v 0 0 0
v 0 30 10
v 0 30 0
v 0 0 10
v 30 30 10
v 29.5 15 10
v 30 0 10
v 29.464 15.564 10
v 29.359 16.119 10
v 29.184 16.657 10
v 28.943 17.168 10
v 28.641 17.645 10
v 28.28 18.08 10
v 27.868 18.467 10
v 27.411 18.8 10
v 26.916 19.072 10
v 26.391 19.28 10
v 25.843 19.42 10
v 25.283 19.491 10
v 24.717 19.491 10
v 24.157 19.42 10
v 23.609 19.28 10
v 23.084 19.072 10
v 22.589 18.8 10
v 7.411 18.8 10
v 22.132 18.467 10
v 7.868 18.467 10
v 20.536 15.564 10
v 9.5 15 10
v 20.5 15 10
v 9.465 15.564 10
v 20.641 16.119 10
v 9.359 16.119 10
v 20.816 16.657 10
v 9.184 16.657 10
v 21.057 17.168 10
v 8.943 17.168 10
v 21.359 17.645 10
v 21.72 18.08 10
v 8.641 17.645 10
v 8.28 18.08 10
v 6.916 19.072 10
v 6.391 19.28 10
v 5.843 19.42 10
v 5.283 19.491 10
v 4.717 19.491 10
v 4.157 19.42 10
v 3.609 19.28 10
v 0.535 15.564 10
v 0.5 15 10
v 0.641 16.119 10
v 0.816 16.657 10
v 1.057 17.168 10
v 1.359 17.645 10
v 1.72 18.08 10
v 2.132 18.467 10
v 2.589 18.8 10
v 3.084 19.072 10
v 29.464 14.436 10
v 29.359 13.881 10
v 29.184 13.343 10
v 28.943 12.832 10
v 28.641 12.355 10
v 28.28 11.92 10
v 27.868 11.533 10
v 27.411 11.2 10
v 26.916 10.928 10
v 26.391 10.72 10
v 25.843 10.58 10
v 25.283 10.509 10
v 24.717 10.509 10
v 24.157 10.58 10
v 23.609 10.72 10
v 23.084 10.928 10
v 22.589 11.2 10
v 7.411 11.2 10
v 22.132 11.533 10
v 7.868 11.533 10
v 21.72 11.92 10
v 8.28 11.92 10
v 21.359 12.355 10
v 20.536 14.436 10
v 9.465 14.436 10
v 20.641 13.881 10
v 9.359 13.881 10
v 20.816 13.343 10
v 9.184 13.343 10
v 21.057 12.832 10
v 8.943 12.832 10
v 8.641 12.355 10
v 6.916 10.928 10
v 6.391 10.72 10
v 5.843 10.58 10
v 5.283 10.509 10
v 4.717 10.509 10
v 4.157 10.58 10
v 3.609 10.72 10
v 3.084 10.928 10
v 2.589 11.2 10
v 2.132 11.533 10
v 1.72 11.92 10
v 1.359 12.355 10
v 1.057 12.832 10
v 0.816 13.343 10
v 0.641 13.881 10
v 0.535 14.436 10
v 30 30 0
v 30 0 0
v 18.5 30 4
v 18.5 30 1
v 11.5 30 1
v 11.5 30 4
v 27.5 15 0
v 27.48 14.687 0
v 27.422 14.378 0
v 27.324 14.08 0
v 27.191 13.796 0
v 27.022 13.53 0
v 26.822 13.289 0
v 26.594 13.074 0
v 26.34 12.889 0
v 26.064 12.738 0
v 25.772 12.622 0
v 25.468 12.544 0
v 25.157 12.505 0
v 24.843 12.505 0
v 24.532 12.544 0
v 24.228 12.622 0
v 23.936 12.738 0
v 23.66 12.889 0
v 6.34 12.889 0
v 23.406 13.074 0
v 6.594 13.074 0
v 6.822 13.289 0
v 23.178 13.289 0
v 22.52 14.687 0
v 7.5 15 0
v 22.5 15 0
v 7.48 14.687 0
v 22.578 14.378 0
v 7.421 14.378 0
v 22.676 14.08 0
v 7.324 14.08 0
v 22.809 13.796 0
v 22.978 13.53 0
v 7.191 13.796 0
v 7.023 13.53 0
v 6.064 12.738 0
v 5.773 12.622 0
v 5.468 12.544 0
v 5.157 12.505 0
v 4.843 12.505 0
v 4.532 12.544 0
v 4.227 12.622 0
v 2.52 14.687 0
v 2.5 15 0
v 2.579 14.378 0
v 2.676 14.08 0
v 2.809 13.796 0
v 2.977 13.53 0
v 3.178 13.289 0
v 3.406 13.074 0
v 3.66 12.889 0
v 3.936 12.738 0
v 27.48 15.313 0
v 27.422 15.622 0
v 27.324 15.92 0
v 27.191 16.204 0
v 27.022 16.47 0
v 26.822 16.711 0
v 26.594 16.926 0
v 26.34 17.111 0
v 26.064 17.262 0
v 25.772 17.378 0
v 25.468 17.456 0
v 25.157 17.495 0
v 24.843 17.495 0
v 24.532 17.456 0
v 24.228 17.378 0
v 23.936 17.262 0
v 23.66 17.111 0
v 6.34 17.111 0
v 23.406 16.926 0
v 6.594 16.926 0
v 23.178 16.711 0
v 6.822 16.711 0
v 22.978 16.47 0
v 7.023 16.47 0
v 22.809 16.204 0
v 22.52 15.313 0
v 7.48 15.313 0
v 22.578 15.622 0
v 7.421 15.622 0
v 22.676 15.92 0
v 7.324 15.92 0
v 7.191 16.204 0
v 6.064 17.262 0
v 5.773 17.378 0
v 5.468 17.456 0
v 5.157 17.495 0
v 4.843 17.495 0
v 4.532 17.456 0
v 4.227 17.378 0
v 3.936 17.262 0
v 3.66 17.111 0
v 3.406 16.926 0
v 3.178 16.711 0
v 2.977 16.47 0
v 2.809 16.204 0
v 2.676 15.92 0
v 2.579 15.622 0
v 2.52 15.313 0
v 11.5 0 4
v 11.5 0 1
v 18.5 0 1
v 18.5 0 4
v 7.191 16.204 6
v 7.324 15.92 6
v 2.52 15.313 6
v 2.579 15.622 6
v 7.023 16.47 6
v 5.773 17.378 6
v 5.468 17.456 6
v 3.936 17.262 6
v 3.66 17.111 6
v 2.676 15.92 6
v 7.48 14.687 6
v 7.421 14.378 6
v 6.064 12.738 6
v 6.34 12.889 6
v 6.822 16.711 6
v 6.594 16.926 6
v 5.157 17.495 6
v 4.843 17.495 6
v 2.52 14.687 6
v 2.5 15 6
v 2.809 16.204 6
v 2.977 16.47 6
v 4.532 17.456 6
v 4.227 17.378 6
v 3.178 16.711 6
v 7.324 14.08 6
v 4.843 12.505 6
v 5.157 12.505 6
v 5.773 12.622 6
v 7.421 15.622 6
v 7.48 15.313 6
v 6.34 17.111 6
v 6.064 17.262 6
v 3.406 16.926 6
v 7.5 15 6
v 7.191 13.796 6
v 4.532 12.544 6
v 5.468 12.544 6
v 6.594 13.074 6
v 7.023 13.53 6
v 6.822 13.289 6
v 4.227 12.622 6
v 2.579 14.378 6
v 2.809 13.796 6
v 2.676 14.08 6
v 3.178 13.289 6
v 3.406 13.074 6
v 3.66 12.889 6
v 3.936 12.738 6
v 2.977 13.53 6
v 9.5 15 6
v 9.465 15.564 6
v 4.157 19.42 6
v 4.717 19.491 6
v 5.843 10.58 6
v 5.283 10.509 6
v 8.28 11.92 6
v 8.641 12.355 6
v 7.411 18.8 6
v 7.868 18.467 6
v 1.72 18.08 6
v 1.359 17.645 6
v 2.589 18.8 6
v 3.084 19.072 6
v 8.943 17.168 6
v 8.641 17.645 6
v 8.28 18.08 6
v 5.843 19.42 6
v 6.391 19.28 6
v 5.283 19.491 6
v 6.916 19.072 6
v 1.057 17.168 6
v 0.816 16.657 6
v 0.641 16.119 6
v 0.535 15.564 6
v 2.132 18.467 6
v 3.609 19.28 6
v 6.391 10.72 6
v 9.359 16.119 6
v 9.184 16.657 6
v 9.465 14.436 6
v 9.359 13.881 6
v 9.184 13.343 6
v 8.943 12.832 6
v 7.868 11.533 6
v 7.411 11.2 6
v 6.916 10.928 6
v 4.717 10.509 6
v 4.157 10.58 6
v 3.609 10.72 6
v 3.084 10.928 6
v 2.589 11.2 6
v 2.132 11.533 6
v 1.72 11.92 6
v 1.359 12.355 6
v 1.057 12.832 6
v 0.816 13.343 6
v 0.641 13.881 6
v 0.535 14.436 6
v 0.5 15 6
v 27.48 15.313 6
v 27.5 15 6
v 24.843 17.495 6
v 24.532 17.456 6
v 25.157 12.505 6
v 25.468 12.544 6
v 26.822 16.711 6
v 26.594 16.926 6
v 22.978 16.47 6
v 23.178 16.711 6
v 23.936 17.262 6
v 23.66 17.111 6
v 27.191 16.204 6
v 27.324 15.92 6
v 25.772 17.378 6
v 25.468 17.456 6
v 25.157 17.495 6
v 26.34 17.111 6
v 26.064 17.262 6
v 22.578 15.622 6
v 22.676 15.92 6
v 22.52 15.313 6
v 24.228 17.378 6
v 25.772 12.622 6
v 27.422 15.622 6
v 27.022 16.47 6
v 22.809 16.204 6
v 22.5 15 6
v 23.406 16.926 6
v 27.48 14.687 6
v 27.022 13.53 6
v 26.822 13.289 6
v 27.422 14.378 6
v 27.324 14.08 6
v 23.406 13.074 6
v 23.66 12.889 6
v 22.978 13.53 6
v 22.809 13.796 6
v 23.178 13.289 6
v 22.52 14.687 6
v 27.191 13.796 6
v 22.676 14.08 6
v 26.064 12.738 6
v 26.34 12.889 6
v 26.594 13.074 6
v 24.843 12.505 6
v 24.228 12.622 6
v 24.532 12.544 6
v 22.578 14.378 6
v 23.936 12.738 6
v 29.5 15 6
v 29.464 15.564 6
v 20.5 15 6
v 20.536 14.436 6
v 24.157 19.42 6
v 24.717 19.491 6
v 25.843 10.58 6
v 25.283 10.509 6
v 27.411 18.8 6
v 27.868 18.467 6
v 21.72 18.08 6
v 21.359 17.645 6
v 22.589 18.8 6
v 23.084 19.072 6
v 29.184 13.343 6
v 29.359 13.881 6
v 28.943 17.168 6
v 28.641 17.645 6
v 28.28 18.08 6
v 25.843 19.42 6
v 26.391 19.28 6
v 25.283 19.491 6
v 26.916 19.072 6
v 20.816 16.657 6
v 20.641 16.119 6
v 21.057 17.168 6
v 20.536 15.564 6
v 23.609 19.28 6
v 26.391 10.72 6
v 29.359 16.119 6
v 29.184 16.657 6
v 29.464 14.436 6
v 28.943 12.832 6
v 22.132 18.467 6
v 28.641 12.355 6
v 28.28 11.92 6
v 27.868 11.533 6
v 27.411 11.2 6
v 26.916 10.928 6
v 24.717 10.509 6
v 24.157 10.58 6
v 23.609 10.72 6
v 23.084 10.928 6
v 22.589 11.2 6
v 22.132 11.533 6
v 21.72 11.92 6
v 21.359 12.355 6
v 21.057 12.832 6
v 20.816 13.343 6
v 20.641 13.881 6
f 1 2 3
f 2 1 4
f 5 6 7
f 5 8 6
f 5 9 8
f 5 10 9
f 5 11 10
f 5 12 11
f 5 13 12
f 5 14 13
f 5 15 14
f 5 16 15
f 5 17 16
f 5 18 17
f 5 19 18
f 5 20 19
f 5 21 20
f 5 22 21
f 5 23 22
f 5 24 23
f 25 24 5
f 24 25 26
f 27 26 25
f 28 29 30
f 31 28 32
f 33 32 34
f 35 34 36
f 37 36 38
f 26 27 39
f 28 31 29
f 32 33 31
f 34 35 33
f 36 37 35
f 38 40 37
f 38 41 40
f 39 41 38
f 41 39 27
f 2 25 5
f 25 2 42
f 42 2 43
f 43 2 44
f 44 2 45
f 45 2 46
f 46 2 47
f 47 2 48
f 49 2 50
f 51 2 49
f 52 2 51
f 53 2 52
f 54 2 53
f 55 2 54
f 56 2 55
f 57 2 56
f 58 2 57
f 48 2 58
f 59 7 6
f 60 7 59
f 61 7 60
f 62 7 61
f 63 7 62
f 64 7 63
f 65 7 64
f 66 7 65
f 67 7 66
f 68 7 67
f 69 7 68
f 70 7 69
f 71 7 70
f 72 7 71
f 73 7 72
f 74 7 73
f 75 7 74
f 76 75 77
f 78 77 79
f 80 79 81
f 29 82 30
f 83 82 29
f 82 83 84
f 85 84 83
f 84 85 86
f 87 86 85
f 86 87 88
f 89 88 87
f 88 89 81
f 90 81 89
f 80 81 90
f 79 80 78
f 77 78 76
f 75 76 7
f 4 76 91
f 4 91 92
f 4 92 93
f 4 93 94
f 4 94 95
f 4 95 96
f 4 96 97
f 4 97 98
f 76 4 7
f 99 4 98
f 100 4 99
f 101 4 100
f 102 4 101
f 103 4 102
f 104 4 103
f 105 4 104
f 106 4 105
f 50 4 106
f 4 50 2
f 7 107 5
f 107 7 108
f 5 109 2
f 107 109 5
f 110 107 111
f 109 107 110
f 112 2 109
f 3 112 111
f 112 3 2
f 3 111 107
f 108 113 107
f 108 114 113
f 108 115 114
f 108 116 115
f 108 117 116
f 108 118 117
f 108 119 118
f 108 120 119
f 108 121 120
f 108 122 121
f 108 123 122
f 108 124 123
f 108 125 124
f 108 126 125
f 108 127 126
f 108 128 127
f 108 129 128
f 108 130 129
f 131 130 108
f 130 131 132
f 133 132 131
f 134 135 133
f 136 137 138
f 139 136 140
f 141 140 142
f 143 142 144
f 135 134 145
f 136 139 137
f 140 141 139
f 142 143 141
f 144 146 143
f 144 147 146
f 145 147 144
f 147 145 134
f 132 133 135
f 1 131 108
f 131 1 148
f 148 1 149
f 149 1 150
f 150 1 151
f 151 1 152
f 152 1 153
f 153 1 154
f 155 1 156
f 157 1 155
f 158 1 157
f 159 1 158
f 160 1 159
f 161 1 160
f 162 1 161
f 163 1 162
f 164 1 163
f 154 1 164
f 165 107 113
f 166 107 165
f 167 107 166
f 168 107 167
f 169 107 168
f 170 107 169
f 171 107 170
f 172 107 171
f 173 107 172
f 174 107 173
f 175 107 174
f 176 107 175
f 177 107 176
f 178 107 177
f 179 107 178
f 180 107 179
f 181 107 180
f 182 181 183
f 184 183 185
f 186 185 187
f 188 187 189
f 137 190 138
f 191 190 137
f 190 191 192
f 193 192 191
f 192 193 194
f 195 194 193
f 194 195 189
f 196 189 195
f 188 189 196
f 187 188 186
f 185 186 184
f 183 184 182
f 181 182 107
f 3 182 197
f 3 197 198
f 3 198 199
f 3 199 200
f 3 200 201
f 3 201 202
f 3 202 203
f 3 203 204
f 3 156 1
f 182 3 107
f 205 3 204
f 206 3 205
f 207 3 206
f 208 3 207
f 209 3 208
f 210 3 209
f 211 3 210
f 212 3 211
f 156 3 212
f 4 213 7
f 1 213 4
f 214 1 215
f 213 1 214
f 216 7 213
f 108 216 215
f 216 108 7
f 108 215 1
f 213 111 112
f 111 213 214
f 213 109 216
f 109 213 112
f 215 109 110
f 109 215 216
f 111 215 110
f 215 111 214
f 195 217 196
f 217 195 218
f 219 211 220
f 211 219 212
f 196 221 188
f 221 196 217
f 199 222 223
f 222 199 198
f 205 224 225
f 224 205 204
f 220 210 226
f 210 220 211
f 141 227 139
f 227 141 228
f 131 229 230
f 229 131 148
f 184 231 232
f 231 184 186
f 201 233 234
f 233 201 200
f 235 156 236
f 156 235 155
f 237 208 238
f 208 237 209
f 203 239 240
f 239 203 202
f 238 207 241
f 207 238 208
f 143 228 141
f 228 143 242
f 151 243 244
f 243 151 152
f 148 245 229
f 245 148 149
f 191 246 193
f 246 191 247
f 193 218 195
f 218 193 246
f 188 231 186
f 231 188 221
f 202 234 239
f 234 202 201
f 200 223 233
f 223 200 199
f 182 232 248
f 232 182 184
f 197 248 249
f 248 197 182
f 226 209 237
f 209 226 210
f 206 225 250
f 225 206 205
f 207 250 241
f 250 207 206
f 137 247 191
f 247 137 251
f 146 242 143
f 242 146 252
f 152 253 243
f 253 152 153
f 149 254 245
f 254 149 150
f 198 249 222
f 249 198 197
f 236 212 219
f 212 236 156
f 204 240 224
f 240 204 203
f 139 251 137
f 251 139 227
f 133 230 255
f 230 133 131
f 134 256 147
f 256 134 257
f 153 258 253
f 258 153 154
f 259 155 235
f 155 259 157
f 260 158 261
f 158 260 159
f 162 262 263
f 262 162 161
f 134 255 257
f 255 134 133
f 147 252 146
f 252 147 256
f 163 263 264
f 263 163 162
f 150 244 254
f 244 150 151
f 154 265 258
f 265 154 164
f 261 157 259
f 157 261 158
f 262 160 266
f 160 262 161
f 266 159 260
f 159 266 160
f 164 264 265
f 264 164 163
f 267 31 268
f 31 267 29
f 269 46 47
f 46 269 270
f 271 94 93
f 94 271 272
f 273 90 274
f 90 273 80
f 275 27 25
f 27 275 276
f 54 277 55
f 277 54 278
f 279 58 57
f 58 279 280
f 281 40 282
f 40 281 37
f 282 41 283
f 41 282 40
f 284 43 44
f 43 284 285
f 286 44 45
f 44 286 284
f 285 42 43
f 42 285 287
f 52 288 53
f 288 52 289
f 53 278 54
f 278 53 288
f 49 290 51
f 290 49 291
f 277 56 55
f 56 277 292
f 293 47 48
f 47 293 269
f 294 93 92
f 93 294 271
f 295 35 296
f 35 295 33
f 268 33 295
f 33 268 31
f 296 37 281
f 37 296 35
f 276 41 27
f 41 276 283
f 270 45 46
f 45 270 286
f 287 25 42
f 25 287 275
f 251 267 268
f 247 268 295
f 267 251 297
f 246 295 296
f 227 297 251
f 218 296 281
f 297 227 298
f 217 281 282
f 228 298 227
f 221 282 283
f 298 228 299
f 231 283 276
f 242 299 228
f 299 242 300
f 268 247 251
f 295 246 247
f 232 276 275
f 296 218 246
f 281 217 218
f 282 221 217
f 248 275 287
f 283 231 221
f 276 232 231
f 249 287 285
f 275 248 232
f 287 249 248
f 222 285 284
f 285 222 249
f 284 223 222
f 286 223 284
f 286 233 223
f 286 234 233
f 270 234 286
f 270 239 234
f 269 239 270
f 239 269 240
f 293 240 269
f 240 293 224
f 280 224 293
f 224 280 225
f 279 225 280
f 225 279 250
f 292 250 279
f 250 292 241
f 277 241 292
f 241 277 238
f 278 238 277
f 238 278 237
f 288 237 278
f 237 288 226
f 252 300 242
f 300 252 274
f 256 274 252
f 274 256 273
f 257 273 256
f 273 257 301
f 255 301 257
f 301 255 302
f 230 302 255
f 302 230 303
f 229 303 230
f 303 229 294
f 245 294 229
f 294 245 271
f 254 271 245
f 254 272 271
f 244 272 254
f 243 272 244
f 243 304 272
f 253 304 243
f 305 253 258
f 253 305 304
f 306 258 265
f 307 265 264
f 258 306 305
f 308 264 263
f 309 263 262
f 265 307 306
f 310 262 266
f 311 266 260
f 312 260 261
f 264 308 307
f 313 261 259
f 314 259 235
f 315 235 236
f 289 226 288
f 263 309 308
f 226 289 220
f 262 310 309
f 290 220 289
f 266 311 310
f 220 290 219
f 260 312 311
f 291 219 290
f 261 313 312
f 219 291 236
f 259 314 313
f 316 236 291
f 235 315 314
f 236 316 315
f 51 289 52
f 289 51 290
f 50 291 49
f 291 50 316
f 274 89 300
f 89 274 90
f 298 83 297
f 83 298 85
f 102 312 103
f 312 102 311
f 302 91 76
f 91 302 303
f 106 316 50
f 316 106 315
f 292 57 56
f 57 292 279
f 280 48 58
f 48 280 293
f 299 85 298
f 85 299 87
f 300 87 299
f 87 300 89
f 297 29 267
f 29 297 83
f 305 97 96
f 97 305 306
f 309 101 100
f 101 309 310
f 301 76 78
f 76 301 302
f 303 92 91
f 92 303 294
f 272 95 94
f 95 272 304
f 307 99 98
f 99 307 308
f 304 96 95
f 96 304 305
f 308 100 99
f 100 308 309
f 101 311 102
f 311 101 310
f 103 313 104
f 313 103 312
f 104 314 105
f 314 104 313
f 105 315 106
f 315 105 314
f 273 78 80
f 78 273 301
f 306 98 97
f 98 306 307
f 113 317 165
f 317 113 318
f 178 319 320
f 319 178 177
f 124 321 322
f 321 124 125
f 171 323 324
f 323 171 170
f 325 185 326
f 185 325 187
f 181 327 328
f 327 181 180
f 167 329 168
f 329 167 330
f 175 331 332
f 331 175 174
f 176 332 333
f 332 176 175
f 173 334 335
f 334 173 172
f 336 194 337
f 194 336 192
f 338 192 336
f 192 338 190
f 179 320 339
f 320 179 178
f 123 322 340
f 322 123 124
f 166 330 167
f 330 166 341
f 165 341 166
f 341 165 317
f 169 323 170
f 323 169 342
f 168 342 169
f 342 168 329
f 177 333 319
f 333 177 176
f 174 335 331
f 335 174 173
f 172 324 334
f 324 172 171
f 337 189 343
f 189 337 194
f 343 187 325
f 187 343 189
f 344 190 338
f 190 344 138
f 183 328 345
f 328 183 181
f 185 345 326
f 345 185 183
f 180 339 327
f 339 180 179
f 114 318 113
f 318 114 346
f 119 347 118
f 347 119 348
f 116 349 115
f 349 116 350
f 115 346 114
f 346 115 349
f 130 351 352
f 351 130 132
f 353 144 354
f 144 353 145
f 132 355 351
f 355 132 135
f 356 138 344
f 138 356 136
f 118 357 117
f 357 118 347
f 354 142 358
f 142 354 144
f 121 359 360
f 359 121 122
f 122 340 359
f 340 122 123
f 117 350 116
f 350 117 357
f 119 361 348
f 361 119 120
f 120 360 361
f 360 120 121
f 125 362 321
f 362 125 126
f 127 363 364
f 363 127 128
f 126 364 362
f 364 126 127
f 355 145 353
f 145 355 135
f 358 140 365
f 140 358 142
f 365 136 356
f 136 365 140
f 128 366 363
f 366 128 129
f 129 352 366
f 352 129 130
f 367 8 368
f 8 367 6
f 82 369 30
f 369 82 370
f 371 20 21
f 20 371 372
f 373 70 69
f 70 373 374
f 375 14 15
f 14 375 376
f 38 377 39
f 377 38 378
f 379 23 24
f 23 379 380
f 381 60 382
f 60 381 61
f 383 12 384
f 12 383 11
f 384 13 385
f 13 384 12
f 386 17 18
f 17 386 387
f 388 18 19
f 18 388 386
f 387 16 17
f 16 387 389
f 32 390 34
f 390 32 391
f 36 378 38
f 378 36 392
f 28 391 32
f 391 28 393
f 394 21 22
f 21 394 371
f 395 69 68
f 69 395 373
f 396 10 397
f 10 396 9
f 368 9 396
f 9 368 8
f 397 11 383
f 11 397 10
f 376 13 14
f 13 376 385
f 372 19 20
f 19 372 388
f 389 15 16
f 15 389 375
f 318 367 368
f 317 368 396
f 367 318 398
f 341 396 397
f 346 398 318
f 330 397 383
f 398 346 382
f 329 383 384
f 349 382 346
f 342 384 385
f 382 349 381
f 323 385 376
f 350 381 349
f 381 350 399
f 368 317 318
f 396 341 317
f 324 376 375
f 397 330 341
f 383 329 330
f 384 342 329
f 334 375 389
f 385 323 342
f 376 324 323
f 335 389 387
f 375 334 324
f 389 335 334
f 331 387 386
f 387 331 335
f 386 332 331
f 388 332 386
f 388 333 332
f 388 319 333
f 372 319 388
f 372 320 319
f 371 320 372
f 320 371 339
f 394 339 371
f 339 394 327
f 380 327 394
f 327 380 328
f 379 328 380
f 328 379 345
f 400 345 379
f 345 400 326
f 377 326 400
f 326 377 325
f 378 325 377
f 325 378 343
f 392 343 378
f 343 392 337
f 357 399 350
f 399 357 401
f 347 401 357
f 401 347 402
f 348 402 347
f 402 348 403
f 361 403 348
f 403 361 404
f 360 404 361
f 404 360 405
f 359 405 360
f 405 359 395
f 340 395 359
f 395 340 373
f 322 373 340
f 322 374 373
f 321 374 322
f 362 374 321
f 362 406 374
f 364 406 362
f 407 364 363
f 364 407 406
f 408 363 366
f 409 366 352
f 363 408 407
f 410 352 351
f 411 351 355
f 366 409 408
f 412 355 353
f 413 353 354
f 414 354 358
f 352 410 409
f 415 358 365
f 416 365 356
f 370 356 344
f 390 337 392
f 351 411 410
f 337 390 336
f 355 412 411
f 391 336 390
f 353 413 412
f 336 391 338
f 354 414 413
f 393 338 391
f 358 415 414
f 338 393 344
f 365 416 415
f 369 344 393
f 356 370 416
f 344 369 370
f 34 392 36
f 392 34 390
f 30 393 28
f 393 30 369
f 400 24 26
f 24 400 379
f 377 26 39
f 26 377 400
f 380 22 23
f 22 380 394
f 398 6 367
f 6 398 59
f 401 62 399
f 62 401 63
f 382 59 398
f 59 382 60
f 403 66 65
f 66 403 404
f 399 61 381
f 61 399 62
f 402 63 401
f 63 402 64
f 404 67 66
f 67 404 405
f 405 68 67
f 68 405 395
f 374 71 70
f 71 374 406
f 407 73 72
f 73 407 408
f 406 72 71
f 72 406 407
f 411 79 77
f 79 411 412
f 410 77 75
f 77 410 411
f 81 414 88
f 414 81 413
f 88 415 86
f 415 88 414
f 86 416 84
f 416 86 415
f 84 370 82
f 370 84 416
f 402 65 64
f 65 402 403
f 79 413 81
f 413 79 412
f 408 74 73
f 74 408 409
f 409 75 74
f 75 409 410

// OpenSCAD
w = 30;
l = 30;
h = 10;
strap_h = 3;
strap_w = 7;
strap_inset = 1;

head_d = 9;
body_d = 5;
hole_dist = 20;
hole_inset = 4;

difference(){
    cube( [ w, l, h ] );
    
    translate( [ w / 2 - strap_w / 2, -1, strap_inset ] )
        cube( [ strap_w, l + 2, strap_h ] );    
    
    translate( [ w / 2 - hole_dist / 2, l / 2, -1 ] )
        cylinder( d = body_d, h = h + 2, $fn = 50 );
    translate( [ w / 2 - hole_dist / 2, l / 2, h - hole_inset ] )
        cylinder( d = head_d, h = h + 2, $fn = 50 );

    translate( [ w / 2 + hole_dist / 2, l / 2, -1 ] )
        cylinder( d = body_d, h = h + 2, $fn = 50 );
    translate( [ w / 2 + hole_dist / 2, l / 2, h - hole_inset ] )
        cylinder( d = head_d, h = h + 2, $fn = 50 );
}
